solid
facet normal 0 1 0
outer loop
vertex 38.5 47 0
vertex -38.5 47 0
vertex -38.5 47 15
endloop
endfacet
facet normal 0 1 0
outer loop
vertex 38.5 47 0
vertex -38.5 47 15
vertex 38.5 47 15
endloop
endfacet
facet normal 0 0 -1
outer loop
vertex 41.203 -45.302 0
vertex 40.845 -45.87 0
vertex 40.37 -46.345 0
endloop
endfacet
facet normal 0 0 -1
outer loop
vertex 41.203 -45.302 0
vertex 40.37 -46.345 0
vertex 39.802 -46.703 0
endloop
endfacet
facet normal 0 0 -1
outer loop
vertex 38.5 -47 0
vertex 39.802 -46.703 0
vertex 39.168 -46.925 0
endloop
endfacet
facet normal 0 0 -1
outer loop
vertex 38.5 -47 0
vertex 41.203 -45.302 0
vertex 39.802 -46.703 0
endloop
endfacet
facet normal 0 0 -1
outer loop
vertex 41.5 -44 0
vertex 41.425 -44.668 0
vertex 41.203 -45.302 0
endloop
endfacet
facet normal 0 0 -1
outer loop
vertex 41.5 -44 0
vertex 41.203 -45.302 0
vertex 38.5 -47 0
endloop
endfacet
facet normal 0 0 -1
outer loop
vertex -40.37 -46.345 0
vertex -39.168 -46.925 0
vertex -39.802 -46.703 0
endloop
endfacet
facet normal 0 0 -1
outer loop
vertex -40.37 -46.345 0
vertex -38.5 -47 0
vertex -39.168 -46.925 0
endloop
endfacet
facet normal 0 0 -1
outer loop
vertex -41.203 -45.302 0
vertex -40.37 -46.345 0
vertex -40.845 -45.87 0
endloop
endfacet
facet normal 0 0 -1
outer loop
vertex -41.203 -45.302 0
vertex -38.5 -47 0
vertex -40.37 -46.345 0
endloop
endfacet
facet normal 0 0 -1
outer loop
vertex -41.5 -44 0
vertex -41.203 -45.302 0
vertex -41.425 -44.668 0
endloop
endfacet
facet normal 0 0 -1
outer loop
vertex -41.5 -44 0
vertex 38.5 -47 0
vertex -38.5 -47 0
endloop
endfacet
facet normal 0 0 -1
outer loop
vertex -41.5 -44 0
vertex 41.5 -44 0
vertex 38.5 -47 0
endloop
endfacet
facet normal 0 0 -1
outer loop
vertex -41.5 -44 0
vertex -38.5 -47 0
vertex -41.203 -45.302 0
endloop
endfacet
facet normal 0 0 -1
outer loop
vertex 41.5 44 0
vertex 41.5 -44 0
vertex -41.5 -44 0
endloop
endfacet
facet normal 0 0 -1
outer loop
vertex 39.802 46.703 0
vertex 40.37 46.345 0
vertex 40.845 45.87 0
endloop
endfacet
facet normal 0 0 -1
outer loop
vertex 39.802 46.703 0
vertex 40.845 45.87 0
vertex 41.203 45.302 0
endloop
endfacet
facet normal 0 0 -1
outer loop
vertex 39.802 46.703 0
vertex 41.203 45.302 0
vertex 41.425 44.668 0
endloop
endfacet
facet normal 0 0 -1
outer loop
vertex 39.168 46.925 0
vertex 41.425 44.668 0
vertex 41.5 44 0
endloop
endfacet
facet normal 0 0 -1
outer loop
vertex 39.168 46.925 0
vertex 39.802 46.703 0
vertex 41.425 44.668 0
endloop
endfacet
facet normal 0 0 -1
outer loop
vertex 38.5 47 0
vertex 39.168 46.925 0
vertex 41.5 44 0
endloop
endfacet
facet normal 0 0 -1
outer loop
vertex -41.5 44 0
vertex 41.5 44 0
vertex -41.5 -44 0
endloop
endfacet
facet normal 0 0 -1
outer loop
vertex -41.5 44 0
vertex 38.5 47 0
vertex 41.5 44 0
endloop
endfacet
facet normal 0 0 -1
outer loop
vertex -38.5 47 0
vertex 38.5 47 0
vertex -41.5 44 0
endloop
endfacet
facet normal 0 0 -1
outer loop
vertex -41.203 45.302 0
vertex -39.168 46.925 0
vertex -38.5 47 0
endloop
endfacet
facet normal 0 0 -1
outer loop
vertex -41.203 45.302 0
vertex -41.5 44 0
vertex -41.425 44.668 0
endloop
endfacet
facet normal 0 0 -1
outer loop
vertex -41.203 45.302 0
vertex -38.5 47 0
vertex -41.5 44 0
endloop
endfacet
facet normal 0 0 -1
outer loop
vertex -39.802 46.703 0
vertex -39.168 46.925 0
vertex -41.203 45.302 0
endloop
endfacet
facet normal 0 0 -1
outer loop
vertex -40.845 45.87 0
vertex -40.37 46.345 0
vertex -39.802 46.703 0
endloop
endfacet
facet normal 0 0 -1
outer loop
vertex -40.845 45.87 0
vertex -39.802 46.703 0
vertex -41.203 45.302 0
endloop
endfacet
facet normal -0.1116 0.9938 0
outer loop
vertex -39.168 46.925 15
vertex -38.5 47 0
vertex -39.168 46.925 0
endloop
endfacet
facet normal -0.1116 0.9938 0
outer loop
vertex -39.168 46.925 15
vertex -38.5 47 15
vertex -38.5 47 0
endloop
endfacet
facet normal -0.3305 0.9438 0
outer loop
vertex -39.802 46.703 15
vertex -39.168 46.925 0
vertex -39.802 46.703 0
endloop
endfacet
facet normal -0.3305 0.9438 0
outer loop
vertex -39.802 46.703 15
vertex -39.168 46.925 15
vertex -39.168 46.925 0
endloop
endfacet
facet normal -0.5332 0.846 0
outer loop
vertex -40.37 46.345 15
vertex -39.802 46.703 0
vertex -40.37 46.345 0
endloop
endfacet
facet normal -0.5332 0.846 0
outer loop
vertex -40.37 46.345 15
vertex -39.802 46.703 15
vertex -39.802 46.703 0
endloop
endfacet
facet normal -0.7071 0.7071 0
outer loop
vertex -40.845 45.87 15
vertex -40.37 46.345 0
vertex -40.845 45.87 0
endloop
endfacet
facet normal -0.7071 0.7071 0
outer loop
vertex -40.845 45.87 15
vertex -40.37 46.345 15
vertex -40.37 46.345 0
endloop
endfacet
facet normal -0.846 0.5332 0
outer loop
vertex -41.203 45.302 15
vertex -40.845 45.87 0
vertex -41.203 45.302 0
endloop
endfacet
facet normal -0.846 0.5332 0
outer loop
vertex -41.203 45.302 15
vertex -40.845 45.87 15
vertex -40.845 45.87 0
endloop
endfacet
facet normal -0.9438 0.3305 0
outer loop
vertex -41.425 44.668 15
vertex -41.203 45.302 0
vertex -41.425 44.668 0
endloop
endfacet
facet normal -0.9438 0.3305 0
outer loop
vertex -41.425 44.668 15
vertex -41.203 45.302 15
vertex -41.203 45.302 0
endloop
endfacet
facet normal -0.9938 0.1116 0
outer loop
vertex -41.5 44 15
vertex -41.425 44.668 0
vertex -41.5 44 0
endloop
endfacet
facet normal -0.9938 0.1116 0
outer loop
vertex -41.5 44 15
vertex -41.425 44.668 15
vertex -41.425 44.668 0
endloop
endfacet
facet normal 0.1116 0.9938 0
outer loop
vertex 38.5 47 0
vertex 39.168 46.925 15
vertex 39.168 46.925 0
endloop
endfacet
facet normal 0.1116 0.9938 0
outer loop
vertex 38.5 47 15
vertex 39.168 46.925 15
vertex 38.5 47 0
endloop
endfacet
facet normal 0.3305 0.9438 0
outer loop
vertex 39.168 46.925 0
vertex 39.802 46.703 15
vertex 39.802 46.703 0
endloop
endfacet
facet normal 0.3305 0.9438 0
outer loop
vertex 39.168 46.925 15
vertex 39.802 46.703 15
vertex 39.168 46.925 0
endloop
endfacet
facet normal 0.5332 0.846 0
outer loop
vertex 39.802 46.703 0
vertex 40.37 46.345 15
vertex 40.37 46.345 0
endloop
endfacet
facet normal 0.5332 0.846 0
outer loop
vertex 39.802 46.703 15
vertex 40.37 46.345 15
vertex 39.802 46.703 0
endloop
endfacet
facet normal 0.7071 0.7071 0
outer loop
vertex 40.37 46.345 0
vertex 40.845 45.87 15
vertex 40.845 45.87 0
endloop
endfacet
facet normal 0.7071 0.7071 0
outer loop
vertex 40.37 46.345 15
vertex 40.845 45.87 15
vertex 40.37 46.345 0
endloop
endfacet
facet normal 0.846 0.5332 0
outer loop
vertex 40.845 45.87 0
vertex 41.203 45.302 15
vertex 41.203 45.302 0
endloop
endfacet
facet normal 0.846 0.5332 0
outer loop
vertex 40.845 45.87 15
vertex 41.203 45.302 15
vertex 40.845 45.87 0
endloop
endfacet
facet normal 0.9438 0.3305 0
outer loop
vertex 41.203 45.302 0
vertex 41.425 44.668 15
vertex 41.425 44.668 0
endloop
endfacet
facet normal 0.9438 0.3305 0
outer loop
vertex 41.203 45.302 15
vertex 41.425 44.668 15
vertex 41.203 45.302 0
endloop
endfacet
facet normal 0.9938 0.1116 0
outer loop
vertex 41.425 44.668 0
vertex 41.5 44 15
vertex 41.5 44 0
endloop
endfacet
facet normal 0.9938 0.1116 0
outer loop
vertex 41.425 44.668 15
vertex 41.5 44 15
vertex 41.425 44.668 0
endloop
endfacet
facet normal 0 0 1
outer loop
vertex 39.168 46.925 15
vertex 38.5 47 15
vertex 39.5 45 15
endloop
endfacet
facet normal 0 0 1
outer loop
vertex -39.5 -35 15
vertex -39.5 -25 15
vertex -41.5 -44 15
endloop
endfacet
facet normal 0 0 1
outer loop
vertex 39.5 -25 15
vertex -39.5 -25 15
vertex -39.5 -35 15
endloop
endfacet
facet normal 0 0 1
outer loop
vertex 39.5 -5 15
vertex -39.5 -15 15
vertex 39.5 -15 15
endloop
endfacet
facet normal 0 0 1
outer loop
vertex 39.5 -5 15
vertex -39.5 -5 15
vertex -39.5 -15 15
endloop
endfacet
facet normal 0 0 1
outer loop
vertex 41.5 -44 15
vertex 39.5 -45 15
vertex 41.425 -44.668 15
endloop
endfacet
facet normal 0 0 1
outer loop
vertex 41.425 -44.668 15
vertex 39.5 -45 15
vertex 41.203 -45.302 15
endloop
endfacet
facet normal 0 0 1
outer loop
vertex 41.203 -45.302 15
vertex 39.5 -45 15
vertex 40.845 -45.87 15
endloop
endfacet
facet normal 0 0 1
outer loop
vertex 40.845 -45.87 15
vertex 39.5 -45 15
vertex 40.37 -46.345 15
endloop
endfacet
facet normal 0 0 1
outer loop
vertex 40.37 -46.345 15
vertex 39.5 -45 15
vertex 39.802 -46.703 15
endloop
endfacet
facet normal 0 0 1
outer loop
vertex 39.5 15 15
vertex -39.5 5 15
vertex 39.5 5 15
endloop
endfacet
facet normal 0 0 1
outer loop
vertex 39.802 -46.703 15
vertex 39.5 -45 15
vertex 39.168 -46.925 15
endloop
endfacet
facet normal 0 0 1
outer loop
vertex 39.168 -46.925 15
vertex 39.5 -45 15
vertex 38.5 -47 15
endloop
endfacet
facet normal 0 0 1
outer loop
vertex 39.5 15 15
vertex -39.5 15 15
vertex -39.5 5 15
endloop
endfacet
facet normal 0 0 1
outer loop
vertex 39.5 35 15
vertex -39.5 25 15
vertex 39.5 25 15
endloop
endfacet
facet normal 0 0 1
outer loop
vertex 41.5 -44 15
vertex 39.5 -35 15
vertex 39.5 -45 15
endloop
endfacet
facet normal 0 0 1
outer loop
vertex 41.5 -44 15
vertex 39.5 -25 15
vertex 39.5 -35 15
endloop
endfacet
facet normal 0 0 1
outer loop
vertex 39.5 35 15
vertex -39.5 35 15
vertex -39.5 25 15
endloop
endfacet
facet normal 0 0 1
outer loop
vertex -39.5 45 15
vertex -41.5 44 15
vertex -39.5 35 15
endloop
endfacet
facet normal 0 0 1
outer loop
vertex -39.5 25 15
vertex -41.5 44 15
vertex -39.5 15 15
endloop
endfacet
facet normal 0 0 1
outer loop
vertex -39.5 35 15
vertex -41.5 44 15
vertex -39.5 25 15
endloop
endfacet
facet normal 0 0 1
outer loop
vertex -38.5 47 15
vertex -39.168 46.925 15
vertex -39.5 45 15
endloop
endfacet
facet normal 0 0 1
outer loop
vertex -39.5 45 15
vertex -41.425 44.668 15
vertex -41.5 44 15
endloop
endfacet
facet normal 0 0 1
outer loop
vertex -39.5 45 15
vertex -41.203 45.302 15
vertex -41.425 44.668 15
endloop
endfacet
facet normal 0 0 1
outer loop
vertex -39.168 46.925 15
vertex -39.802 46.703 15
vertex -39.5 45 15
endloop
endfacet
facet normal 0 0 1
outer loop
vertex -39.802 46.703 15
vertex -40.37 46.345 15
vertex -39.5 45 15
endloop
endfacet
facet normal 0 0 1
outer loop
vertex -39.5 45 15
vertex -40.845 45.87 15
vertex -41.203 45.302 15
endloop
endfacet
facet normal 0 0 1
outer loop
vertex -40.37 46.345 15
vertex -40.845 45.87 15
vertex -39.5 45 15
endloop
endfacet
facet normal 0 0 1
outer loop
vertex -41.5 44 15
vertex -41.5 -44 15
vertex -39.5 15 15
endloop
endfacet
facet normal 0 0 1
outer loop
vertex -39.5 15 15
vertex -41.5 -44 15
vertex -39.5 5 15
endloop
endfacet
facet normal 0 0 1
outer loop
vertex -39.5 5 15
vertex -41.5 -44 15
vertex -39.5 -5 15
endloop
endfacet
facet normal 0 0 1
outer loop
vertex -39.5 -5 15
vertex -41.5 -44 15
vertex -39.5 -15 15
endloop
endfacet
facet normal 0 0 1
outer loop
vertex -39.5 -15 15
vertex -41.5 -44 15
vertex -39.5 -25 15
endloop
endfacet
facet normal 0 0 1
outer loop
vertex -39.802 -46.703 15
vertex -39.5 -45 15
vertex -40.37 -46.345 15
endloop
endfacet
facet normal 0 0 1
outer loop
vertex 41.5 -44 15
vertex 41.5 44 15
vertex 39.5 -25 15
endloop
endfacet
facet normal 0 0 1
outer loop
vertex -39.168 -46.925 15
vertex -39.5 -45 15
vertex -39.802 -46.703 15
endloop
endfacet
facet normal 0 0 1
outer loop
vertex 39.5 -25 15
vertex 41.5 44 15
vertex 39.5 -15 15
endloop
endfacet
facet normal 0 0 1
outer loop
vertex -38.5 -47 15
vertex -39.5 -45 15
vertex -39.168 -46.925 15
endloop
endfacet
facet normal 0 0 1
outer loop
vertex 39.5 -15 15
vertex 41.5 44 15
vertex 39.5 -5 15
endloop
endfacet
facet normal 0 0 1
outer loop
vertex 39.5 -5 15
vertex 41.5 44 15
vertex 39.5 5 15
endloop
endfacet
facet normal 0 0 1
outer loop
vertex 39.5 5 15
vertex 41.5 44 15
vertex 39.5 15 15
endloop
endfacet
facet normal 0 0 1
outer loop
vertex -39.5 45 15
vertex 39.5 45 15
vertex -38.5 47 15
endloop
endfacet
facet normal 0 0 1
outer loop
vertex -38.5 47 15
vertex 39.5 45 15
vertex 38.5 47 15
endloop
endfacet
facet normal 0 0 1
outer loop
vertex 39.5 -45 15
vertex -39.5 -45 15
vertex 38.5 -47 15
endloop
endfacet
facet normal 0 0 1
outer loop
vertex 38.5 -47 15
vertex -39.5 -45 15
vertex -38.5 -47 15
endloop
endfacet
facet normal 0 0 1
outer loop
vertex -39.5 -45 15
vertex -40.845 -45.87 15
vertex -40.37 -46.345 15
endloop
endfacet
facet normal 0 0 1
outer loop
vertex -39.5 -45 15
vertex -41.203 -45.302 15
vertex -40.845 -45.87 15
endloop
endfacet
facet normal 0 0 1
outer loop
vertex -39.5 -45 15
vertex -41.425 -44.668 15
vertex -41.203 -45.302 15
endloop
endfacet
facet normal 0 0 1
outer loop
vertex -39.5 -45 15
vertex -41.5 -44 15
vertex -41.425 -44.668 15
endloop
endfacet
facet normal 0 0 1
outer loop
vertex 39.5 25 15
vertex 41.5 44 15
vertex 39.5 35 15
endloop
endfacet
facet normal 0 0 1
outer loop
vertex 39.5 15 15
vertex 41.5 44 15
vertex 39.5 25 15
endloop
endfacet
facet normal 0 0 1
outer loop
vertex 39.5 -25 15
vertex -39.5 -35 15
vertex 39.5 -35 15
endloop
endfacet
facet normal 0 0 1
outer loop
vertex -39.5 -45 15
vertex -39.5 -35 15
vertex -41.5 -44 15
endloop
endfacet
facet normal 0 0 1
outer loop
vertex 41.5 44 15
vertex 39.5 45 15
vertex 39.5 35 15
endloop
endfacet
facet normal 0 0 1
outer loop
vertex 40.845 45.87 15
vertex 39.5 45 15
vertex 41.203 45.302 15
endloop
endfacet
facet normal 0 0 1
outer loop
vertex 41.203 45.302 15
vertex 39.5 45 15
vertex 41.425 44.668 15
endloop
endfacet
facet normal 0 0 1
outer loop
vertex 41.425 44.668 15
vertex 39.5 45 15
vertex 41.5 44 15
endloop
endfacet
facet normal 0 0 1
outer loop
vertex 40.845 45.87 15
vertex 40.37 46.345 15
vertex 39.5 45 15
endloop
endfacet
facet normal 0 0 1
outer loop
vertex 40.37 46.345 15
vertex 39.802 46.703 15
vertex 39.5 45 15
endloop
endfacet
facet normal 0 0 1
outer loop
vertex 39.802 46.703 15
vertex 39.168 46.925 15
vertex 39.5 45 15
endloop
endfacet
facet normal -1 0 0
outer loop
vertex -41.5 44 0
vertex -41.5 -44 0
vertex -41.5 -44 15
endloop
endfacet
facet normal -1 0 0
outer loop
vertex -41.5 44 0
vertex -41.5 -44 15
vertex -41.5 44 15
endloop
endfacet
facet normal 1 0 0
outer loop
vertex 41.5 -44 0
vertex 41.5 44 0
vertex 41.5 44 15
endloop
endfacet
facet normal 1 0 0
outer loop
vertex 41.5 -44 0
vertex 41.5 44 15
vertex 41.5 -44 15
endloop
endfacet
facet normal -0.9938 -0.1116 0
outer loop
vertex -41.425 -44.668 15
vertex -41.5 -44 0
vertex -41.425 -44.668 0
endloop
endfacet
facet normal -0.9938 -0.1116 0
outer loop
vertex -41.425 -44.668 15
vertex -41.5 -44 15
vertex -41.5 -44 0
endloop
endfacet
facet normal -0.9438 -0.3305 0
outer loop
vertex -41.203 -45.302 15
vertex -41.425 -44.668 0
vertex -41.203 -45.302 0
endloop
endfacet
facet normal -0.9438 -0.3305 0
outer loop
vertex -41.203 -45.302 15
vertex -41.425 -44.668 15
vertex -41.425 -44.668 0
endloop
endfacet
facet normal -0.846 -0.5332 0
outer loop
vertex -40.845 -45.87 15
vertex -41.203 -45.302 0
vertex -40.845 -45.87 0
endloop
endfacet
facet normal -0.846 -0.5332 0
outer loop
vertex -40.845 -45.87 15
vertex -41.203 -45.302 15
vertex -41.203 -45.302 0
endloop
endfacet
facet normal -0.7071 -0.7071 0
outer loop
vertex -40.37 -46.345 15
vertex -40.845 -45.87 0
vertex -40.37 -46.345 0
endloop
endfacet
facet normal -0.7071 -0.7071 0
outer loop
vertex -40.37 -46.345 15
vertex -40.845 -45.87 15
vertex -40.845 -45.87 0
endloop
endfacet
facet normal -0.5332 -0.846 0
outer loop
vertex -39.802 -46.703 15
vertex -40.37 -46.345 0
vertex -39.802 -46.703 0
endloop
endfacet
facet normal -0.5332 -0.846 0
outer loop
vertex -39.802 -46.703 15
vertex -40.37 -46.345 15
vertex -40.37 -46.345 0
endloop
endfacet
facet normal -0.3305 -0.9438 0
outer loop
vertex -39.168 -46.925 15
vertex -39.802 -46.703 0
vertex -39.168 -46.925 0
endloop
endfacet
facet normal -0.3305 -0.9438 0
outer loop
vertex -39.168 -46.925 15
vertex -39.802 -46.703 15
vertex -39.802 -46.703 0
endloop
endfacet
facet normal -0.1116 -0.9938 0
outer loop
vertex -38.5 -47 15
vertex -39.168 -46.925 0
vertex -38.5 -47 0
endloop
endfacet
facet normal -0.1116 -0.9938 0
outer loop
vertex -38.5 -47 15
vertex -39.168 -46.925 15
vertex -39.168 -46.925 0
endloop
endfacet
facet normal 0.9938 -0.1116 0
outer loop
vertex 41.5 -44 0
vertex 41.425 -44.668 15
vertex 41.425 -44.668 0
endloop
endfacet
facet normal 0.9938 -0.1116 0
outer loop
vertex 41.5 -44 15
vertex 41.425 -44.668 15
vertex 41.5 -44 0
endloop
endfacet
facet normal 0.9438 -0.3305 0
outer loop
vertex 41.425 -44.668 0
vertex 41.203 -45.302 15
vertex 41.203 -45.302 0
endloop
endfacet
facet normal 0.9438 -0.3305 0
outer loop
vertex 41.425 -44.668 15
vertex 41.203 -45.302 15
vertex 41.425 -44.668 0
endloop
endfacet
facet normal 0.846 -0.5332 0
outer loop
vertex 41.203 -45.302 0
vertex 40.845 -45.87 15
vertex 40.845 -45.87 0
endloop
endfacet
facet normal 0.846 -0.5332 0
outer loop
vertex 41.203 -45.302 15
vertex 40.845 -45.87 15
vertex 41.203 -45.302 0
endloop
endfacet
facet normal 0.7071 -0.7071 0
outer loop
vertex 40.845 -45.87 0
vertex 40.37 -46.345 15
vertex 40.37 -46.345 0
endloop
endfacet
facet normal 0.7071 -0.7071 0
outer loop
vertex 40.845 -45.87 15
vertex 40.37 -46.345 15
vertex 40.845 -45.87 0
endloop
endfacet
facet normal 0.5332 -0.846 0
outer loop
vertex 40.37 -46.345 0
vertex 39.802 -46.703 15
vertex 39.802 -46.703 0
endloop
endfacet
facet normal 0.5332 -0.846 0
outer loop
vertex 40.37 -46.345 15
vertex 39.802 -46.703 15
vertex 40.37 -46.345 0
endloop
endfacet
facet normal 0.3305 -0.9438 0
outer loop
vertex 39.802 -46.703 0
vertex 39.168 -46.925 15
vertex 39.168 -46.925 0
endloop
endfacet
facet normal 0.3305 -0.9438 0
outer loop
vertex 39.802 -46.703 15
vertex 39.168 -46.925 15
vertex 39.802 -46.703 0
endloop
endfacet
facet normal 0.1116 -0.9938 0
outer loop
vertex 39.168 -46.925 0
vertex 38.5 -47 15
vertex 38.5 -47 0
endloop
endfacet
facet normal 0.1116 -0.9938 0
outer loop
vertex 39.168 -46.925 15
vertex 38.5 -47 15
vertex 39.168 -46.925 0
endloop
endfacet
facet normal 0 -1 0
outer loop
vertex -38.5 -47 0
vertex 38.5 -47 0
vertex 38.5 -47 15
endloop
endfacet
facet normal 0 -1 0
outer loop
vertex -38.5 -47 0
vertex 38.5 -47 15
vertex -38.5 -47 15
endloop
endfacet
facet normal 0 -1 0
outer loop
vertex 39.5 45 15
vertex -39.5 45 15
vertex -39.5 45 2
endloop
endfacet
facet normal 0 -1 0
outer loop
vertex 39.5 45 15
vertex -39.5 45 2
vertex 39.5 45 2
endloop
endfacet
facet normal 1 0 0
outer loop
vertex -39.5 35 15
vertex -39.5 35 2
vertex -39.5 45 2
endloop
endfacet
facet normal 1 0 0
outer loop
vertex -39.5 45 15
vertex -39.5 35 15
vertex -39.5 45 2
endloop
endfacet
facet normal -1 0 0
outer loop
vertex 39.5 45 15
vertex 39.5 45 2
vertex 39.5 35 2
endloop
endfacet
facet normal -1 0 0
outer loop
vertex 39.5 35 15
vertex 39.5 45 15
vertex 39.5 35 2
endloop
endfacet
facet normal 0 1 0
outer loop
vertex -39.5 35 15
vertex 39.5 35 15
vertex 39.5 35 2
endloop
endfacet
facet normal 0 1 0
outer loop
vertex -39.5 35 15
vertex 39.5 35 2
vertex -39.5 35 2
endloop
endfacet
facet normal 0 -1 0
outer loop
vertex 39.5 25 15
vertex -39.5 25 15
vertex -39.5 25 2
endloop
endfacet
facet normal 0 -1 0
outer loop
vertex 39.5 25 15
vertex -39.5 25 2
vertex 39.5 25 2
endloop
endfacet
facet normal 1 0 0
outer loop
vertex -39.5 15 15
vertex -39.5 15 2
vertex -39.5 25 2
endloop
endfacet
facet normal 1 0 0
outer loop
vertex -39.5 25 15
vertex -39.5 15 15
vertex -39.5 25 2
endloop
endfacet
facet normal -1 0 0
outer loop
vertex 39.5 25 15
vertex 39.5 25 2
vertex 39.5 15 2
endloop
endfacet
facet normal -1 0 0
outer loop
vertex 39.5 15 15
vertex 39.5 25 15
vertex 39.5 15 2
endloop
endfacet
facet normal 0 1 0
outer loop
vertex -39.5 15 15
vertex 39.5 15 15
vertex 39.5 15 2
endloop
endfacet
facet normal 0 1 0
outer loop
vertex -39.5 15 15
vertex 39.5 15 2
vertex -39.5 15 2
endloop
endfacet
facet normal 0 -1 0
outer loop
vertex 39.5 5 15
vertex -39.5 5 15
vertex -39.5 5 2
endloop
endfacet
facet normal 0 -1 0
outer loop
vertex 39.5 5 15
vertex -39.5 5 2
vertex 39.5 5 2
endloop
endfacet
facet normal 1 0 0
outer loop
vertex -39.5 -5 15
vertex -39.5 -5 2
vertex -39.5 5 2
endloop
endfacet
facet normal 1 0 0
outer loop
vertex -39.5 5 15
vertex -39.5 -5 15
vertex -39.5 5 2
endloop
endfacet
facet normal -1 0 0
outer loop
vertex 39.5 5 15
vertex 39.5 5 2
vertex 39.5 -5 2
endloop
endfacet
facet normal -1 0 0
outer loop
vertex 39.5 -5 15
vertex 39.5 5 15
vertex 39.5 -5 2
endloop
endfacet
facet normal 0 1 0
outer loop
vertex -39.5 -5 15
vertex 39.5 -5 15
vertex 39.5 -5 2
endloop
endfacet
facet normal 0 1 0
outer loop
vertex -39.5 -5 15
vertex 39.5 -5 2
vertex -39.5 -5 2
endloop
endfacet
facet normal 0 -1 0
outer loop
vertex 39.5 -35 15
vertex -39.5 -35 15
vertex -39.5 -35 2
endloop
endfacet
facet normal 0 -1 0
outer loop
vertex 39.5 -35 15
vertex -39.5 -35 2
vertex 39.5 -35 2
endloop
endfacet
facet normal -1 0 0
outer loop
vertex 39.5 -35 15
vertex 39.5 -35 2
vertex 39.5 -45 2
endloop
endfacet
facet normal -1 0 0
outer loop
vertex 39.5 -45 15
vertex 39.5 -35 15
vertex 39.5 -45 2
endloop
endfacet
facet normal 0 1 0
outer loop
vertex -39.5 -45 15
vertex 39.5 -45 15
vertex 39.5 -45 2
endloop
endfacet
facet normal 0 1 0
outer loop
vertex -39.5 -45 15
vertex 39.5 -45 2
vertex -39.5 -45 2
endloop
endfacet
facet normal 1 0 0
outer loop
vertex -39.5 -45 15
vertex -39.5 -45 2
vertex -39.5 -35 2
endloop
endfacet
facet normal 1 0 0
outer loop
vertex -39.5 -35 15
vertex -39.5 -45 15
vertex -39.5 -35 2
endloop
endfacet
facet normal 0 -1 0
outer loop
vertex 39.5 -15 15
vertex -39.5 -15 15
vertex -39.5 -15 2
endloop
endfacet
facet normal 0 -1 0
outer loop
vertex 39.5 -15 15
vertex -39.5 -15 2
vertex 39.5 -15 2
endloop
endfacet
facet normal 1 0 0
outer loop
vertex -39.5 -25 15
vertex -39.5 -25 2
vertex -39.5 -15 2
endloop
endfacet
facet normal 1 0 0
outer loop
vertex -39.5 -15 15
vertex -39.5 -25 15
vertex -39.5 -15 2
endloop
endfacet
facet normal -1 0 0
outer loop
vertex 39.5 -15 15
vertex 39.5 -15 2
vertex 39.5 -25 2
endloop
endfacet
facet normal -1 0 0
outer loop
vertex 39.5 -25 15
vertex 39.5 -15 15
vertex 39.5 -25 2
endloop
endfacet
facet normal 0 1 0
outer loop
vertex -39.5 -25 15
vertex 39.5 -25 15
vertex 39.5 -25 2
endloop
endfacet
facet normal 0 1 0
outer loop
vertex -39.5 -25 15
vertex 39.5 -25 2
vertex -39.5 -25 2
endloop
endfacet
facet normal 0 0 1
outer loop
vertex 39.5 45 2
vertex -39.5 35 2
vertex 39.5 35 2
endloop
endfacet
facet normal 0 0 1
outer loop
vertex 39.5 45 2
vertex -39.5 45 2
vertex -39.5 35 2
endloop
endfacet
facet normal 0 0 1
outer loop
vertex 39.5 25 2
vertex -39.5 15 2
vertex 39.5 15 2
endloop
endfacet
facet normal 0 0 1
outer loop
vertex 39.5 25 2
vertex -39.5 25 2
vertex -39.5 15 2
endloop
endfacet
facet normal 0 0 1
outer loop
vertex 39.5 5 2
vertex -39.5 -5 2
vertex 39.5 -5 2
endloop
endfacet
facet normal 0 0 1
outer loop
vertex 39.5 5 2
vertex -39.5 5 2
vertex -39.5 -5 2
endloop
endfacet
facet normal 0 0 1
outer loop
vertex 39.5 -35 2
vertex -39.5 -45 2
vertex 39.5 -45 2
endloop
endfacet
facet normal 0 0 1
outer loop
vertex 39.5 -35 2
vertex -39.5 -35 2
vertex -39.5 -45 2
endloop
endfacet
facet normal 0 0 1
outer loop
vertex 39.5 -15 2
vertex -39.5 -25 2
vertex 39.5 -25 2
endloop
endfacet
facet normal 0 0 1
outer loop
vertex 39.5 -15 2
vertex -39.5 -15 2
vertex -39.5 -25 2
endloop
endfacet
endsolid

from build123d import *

# Parameters (mm, degrees)
SKETCH_W            = 83
SKETCH_H            = 94
PAD_DEPTH           = 15
SKETCH001_W         = 79
SKETCH001_H         = 10
POCKET_DEPTH        = 13
LINEARPATTERN_COUNT = 5
LINEARPATTERN_PITCH = 20
FILLET_R            = 3


with BuildPart() as part:
    # Sketch → Pad (new body)
    with BuildSketch(Plane.XY):
        Rectangle(SKETCH_W, SKETCH_H)
    extrude(amount=PAD_DEPTH)

    # Sketch001 (on Face6 of Pad) → Pocket (cut)
    with BuildSketch(Plane.XY.offset(15)):
        with Locations((0, 40)):
            Rectangle(SKETCH001_W, SKETCH001_H)
    pocket = extrude(amount=-POCKET_DEPTH, mode=Mode.SUBTRACT)

    # LinearPattern: Pocket ×5
    with Locations(*[(0, -i * LINEARPATTERN_PITCH, 0) for i in range(1, LINEARPATTERN_COUNT)]):
        add(pocket, mode=Mode.SUBTRACT)

    # Fillet
    fillet_edges = [part.edges().sort_by_distance(p)[0] for p in [
        (-41.5, 47, 7.5),
        (41.5, 47, 7.5),
        (-41.5, -47, 7.5),
        (41.5, -47, 7.5),
    ]]
    fillet(fillet_edges, radius=FILLET_R)


solid = part.part
